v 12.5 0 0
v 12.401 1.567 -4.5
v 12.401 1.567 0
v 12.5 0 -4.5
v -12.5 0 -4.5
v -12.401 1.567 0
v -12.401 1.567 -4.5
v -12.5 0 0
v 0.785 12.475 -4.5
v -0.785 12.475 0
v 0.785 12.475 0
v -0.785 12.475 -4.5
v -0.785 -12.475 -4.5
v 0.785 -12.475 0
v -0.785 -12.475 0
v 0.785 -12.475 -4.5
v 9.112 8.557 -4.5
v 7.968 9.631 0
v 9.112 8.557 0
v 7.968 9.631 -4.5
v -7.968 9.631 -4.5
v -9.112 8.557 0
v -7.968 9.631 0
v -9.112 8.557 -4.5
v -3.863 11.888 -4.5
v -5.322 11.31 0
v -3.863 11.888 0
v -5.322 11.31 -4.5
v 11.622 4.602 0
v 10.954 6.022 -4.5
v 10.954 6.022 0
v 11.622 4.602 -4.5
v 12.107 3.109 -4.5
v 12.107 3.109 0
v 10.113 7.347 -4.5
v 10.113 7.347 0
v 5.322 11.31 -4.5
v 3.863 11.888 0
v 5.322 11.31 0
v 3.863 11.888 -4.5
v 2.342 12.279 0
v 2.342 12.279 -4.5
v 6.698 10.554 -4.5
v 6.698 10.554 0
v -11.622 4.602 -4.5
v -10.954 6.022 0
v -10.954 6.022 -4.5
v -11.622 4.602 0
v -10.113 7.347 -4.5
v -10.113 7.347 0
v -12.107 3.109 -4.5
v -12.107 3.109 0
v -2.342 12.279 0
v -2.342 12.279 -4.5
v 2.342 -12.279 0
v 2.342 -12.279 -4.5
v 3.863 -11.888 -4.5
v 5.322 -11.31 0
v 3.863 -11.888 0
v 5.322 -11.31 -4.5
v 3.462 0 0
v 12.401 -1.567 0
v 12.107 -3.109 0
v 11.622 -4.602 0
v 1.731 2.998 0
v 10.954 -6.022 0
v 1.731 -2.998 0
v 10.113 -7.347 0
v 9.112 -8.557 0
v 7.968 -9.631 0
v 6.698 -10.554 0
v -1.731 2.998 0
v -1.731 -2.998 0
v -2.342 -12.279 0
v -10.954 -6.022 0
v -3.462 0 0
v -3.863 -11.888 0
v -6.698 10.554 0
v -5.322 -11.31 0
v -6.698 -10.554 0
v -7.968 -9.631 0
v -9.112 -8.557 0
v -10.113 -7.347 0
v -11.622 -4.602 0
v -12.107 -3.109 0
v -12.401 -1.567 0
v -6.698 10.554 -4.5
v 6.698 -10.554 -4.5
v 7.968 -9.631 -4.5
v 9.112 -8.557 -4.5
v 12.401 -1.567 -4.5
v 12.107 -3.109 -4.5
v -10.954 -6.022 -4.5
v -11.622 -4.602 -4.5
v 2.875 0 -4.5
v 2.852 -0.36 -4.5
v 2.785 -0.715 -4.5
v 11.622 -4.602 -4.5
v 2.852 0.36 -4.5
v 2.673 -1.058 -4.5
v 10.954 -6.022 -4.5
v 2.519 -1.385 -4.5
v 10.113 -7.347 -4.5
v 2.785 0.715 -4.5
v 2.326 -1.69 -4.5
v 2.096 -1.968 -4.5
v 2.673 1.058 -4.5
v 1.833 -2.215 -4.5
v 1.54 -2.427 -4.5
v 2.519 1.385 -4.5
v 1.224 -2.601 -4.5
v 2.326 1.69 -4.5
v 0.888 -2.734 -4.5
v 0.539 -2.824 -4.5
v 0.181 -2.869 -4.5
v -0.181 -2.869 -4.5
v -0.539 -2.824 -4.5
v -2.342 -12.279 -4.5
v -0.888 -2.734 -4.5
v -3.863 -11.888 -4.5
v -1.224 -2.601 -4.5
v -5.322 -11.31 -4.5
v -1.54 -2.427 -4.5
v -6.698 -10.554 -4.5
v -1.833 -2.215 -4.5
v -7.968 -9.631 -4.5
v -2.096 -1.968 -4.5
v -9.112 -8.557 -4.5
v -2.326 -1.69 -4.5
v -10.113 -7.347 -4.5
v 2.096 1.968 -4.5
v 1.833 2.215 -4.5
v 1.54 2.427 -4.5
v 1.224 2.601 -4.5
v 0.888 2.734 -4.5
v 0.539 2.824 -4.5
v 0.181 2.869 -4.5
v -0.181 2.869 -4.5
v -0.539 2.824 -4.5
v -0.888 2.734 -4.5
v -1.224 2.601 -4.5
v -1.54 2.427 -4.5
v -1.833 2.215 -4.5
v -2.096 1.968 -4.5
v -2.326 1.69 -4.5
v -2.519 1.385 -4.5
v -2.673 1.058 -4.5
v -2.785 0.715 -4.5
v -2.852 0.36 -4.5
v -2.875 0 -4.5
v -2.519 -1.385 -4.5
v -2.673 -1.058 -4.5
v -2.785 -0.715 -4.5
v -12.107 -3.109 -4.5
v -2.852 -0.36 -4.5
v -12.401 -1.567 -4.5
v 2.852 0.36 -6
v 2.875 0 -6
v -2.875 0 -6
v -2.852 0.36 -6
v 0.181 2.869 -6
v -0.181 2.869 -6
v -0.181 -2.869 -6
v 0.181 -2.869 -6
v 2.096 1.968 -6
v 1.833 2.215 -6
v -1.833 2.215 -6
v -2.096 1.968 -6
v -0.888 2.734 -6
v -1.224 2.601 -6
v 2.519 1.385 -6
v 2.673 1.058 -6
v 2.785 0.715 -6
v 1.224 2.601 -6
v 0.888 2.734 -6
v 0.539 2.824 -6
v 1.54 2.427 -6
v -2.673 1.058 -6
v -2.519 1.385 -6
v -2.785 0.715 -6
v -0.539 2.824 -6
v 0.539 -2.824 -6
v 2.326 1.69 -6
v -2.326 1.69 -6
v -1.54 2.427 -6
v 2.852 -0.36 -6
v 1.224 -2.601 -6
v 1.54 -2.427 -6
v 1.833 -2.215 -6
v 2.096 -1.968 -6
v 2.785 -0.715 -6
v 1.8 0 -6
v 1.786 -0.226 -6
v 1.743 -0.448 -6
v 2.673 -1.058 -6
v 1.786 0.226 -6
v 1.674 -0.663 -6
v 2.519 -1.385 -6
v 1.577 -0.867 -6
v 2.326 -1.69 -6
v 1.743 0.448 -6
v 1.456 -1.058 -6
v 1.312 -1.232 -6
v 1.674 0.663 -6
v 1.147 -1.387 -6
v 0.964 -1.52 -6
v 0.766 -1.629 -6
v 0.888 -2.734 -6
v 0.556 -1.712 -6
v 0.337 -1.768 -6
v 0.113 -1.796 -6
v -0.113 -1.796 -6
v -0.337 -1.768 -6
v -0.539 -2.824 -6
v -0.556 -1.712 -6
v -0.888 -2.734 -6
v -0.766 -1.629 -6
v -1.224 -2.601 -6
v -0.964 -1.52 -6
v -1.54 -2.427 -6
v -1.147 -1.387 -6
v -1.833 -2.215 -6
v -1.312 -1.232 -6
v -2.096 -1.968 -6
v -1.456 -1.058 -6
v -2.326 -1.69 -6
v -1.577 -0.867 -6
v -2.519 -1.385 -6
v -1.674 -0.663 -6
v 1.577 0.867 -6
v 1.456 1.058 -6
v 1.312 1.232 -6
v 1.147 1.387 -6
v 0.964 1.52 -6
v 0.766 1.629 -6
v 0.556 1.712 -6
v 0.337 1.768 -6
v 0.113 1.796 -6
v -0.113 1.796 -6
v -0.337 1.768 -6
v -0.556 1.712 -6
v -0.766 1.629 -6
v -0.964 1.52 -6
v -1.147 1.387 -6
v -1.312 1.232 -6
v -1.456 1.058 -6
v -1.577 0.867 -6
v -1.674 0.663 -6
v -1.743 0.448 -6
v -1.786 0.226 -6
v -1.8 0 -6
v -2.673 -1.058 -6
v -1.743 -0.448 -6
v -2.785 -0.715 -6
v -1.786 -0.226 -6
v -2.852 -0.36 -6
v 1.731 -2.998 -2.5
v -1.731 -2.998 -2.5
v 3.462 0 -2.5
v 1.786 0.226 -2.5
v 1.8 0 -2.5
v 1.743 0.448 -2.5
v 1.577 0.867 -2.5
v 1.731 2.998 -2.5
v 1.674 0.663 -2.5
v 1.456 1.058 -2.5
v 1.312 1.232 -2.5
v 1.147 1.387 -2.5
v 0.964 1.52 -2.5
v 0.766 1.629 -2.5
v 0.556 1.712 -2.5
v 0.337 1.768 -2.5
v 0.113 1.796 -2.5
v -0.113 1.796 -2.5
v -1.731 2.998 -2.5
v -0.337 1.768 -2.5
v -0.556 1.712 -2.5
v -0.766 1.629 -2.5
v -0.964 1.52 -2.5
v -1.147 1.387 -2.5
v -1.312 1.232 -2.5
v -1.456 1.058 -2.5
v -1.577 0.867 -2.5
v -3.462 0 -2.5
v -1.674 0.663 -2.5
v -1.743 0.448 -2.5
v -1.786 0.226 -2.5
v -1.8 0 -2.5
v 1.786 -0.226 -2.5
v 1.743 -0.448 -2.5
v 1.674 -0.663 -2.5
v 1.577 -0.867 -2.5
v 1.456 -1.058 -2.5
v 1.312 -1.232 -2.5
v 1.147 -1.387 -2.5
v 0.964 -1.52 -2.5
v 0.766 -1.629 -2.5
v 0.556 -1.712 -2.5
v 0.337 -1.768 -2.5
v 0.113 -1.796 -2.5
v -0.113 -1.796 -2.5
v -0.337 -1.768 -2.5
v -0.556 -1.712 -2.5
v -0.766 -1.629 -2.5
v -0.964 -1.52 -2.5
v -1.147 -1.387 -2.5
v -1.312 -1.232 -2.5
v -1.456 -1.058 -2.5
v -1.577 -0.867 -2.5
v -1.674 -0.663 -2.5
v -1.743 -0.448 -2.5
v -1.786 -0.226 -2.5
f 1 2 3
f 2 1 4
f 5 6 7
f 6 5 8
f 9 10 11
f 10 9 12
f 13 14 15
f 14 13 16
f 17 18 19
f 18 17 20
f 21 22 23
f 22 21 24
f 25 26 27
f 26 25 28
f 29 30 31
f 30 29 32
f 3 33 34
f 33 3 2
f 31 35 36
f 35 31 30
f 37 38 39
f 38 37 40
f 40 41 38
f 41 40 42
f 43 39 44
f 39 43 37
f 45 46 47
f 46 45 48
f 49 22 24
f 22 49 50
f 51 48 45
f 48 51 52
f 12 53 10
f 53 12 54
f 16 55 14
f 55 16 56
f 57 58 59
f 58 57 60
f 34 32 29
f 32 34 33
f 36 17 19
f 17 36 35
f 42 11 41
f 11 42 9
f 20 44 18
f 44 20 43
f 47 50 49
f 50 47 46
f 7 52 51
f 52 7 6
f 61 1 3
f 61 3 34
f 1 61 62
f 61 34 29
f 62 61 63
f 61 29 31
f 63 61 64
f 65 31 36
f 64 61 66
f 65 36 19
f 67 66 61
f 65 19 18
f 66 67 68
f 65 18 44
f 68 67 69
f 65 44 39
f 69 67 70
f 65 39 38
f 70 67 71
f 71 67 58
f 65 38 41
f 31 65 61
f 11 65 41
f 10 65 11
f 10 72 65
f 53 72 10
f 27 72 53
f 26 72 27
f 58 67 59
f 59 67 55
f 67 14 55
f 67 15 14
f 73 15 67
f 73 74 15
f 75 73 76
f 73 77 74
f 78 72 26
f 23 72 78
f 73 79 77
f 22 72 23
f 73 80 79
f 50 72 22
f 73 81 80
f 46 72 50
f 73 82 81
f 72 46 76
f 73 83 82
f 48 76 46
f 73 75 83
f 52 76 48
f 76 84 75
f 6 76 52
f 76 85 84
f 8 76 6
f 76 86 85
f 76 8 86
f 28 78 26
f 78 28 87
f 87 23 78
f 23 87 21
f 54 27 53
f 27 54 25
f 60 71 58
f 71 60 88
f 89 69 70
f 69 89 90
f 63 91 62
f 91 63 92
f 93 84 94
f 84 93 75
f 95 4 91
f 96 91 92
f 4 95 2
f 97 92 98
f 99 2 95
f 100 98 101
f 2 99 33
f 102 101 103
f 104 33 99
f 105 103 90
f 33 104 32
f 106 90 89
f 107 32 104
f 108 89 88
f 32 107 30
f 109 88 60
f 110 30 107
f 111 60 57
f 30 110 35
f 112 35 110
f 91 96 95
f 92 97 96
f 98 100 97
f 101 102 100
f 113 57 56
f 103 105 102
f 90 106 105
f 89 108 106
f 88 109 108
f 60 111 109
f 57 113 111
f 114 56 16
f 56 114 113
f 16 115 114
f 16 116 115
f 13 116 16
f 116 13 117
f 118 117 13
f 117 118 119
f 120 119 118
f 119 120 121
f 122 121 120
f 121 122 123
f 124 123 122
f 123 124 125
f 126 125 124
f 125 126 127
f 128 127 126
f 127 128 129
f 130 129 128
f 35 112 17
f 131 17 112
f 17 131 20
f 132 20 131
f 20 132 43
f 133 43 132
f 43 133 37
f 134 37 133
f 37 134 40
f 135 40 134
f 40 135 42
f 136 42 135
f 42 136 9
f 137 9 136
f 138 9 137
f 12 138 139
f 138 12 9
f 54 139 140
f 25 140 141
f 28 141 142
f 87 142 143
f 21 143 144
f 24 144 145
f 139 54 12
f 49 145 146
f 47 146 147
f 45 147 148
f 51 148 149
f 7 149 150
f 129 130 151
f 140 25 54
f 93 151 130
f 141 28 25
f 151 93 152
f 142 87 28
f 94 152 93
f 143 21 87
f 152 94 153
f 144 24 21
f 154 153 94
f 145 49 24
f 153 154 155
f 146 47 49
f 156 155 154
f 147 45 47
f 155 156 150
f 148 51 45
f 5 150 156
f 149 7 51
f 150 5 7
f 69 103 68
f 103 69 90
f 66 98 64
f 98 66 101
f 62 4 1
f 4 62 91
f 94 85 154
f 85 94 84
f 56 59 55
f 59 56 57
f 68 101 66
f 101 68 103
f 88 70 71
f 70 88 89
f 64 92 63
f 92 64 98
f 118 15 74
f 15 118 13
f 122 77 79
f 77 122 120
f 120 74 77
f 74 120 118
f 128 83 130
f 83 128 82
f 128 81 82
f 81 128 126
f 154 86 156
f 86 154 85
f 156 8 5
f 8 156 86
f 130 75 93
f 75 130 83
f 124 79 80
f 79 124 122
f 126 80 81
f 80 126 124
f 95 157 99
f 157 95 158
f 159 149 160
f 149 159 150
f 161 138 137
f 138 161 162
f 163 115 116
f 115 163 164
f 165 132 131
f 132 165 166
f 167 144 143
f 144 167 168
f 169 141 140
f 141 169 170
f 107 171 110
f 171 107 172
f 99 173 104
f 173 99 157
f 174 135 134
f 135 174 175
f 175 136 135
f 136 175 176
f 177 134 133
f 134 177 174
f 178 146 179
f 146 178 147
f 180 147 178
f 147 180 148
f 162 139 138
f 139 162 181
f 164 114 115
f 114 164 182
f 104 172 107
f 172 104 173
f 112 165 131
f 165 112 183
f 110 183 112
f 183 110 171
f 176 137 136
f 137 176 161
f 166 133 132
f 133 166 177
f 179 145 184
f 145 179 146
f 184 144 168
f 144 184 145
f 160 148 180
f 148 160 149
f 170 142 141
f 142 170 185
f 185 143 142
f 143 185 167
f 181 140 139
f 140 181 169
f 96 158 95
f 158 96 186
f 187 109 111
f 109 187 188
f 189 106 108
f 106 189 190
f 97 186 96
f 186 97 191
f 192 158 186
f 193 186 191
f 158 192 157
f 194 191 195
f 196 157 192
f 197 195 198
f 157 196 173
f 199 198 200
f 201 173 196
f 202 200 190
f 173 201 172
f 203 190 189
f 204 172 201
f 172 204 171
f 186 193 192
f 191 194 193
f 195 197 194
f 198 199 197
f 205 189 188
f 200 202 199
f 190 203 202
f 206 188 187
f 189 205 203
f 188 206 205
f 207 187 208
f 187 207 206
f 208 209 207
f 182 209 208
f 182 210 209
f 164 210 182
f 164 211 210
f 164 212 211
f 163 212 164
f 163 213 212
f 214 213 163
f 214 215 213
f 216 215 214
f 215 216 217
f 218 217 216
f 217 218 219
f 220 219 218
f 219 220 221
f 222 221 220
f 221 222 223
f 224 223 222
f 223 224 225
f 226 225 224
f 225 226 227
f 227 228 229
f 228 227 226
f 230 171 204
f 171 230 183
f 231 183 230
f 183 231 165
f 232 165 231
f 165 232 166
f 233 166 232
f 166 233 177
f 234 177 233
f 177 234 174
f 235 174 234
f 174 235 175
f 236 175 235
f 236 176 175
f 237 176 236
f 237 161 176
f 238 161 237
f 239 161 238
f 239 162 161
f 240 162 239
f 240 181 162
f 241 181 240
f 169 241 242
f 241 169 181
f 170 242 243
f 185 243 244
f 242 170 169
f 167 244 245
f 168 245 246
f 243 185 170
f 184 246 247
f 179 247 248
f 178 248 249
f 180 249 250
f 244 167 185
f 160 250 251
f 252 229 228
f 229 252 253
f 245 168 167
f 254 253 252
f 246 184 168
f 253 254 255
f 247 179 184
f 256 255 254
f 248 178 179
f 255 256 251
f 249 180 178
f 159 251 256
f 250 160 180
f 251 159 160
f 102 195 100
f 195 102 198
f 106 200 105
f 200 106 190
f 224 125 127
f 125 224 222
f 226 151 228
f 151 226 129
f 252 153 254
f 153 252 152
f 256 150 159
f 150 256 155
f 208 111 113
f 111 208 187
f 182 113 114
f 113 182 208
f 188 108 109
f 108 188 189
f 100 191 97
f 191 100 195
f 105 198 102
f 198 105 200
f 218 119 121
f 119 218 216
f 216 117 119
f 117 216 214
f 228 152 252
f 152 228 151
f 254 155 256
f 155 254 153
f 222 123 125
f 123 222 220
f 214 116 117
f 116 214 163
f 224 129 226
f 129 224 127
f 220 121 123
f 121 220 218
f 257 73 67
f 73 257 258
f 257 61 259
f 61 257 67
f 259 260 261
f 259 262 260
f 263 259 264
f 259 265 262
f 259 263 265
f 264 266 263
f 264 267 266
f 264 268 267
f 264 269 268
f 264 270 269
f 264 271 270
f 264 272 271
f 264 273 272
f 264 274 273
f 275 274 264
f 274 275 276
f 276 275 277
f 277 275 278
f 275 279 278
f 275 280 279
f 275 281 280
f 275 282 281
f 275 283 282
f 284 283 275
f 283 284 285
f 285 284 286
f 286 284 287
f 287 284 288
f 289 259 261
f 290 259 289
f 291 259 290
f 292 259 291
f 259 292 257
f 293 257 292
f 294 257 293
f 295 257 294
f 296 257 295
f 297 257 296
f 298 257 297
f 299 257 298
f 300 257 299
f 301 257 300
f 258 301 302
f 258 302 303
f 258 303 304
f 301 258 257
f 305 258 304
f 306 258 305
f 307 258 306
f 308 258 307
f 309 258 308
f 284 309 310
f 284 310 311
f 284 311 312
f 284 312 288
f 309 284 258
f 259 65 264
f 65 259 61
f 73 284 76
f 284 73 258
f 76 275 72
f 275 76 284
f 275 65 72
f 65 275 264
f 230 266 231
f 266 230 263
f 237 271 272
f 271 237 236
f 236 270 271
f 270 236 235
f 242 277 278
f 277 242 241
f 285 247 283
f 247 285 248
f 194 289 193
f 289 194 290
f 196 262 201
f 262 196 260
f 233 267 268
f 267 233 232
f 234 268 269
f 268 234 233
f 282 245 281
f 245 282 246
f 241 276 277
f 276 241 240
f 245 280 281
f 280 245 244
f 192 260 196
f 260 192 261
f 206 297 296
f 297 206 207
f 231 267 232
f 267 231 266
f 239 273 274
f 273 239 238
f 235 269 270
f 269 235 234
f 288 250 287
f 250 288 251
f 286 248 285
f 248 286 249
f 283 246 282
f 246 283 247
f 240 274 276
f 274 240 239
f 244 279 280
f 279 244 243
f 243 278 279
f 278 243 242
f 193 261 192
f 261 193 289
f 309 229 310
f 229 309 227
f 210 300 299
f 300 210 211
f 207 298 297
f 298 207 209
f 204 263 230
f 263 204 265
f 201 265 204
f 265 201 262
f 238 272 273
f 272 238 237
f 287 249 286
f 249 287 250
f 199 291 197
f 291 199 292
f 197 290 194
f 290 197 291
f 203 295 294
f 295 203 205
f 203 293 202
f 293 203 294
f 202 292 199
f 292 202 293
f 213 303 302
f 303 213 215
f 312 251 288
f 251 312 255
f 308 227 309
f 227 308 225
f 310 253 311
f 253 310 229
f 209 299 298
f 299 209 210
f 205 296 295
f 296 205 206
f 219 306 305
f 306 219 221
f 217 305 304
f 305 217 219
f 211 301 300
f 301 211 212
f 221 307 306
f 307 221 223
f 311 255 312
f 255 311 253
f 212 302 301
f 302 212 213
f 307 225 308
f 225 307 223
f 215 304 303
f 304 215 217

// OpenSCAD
$fn = 50;

difference() {
	union() {
		translate(v = [0, 0, -4.5]) {
			cylinder(h = 4.5, r = 12.5);
		}
		#translate(v = [0, 0, -6.0]) {
			cylinder(h = 6, r = 2.875);
		}
	}
	union() {
		translate(v = [0, 0, 0]) {
			rotate(a = [0, 0, 0]) {
				difference() {
					union() {
						translate(v = [0, 0, -2.5]) {
							linear_extrude(height = 2.5) {
								polygon(points = [[3.4619999999999997, 0.0], [1.7310000000000003, 2.9981799479017264], [-1.7309999999999992, 2.9981799479017264], [-3.4619999999999997, 4.2397272186481365e-16], [-1.7310000000000014, -2.998179947901726], [1.7309999999999977, -2.9981799479017277]]);
							}
						}
					}
					union();
				}
			}
		}
		#translate(v = [0, 0, -100.0]) {
			cylinder(h = 200, r = 1.8);
		}
	}
}
